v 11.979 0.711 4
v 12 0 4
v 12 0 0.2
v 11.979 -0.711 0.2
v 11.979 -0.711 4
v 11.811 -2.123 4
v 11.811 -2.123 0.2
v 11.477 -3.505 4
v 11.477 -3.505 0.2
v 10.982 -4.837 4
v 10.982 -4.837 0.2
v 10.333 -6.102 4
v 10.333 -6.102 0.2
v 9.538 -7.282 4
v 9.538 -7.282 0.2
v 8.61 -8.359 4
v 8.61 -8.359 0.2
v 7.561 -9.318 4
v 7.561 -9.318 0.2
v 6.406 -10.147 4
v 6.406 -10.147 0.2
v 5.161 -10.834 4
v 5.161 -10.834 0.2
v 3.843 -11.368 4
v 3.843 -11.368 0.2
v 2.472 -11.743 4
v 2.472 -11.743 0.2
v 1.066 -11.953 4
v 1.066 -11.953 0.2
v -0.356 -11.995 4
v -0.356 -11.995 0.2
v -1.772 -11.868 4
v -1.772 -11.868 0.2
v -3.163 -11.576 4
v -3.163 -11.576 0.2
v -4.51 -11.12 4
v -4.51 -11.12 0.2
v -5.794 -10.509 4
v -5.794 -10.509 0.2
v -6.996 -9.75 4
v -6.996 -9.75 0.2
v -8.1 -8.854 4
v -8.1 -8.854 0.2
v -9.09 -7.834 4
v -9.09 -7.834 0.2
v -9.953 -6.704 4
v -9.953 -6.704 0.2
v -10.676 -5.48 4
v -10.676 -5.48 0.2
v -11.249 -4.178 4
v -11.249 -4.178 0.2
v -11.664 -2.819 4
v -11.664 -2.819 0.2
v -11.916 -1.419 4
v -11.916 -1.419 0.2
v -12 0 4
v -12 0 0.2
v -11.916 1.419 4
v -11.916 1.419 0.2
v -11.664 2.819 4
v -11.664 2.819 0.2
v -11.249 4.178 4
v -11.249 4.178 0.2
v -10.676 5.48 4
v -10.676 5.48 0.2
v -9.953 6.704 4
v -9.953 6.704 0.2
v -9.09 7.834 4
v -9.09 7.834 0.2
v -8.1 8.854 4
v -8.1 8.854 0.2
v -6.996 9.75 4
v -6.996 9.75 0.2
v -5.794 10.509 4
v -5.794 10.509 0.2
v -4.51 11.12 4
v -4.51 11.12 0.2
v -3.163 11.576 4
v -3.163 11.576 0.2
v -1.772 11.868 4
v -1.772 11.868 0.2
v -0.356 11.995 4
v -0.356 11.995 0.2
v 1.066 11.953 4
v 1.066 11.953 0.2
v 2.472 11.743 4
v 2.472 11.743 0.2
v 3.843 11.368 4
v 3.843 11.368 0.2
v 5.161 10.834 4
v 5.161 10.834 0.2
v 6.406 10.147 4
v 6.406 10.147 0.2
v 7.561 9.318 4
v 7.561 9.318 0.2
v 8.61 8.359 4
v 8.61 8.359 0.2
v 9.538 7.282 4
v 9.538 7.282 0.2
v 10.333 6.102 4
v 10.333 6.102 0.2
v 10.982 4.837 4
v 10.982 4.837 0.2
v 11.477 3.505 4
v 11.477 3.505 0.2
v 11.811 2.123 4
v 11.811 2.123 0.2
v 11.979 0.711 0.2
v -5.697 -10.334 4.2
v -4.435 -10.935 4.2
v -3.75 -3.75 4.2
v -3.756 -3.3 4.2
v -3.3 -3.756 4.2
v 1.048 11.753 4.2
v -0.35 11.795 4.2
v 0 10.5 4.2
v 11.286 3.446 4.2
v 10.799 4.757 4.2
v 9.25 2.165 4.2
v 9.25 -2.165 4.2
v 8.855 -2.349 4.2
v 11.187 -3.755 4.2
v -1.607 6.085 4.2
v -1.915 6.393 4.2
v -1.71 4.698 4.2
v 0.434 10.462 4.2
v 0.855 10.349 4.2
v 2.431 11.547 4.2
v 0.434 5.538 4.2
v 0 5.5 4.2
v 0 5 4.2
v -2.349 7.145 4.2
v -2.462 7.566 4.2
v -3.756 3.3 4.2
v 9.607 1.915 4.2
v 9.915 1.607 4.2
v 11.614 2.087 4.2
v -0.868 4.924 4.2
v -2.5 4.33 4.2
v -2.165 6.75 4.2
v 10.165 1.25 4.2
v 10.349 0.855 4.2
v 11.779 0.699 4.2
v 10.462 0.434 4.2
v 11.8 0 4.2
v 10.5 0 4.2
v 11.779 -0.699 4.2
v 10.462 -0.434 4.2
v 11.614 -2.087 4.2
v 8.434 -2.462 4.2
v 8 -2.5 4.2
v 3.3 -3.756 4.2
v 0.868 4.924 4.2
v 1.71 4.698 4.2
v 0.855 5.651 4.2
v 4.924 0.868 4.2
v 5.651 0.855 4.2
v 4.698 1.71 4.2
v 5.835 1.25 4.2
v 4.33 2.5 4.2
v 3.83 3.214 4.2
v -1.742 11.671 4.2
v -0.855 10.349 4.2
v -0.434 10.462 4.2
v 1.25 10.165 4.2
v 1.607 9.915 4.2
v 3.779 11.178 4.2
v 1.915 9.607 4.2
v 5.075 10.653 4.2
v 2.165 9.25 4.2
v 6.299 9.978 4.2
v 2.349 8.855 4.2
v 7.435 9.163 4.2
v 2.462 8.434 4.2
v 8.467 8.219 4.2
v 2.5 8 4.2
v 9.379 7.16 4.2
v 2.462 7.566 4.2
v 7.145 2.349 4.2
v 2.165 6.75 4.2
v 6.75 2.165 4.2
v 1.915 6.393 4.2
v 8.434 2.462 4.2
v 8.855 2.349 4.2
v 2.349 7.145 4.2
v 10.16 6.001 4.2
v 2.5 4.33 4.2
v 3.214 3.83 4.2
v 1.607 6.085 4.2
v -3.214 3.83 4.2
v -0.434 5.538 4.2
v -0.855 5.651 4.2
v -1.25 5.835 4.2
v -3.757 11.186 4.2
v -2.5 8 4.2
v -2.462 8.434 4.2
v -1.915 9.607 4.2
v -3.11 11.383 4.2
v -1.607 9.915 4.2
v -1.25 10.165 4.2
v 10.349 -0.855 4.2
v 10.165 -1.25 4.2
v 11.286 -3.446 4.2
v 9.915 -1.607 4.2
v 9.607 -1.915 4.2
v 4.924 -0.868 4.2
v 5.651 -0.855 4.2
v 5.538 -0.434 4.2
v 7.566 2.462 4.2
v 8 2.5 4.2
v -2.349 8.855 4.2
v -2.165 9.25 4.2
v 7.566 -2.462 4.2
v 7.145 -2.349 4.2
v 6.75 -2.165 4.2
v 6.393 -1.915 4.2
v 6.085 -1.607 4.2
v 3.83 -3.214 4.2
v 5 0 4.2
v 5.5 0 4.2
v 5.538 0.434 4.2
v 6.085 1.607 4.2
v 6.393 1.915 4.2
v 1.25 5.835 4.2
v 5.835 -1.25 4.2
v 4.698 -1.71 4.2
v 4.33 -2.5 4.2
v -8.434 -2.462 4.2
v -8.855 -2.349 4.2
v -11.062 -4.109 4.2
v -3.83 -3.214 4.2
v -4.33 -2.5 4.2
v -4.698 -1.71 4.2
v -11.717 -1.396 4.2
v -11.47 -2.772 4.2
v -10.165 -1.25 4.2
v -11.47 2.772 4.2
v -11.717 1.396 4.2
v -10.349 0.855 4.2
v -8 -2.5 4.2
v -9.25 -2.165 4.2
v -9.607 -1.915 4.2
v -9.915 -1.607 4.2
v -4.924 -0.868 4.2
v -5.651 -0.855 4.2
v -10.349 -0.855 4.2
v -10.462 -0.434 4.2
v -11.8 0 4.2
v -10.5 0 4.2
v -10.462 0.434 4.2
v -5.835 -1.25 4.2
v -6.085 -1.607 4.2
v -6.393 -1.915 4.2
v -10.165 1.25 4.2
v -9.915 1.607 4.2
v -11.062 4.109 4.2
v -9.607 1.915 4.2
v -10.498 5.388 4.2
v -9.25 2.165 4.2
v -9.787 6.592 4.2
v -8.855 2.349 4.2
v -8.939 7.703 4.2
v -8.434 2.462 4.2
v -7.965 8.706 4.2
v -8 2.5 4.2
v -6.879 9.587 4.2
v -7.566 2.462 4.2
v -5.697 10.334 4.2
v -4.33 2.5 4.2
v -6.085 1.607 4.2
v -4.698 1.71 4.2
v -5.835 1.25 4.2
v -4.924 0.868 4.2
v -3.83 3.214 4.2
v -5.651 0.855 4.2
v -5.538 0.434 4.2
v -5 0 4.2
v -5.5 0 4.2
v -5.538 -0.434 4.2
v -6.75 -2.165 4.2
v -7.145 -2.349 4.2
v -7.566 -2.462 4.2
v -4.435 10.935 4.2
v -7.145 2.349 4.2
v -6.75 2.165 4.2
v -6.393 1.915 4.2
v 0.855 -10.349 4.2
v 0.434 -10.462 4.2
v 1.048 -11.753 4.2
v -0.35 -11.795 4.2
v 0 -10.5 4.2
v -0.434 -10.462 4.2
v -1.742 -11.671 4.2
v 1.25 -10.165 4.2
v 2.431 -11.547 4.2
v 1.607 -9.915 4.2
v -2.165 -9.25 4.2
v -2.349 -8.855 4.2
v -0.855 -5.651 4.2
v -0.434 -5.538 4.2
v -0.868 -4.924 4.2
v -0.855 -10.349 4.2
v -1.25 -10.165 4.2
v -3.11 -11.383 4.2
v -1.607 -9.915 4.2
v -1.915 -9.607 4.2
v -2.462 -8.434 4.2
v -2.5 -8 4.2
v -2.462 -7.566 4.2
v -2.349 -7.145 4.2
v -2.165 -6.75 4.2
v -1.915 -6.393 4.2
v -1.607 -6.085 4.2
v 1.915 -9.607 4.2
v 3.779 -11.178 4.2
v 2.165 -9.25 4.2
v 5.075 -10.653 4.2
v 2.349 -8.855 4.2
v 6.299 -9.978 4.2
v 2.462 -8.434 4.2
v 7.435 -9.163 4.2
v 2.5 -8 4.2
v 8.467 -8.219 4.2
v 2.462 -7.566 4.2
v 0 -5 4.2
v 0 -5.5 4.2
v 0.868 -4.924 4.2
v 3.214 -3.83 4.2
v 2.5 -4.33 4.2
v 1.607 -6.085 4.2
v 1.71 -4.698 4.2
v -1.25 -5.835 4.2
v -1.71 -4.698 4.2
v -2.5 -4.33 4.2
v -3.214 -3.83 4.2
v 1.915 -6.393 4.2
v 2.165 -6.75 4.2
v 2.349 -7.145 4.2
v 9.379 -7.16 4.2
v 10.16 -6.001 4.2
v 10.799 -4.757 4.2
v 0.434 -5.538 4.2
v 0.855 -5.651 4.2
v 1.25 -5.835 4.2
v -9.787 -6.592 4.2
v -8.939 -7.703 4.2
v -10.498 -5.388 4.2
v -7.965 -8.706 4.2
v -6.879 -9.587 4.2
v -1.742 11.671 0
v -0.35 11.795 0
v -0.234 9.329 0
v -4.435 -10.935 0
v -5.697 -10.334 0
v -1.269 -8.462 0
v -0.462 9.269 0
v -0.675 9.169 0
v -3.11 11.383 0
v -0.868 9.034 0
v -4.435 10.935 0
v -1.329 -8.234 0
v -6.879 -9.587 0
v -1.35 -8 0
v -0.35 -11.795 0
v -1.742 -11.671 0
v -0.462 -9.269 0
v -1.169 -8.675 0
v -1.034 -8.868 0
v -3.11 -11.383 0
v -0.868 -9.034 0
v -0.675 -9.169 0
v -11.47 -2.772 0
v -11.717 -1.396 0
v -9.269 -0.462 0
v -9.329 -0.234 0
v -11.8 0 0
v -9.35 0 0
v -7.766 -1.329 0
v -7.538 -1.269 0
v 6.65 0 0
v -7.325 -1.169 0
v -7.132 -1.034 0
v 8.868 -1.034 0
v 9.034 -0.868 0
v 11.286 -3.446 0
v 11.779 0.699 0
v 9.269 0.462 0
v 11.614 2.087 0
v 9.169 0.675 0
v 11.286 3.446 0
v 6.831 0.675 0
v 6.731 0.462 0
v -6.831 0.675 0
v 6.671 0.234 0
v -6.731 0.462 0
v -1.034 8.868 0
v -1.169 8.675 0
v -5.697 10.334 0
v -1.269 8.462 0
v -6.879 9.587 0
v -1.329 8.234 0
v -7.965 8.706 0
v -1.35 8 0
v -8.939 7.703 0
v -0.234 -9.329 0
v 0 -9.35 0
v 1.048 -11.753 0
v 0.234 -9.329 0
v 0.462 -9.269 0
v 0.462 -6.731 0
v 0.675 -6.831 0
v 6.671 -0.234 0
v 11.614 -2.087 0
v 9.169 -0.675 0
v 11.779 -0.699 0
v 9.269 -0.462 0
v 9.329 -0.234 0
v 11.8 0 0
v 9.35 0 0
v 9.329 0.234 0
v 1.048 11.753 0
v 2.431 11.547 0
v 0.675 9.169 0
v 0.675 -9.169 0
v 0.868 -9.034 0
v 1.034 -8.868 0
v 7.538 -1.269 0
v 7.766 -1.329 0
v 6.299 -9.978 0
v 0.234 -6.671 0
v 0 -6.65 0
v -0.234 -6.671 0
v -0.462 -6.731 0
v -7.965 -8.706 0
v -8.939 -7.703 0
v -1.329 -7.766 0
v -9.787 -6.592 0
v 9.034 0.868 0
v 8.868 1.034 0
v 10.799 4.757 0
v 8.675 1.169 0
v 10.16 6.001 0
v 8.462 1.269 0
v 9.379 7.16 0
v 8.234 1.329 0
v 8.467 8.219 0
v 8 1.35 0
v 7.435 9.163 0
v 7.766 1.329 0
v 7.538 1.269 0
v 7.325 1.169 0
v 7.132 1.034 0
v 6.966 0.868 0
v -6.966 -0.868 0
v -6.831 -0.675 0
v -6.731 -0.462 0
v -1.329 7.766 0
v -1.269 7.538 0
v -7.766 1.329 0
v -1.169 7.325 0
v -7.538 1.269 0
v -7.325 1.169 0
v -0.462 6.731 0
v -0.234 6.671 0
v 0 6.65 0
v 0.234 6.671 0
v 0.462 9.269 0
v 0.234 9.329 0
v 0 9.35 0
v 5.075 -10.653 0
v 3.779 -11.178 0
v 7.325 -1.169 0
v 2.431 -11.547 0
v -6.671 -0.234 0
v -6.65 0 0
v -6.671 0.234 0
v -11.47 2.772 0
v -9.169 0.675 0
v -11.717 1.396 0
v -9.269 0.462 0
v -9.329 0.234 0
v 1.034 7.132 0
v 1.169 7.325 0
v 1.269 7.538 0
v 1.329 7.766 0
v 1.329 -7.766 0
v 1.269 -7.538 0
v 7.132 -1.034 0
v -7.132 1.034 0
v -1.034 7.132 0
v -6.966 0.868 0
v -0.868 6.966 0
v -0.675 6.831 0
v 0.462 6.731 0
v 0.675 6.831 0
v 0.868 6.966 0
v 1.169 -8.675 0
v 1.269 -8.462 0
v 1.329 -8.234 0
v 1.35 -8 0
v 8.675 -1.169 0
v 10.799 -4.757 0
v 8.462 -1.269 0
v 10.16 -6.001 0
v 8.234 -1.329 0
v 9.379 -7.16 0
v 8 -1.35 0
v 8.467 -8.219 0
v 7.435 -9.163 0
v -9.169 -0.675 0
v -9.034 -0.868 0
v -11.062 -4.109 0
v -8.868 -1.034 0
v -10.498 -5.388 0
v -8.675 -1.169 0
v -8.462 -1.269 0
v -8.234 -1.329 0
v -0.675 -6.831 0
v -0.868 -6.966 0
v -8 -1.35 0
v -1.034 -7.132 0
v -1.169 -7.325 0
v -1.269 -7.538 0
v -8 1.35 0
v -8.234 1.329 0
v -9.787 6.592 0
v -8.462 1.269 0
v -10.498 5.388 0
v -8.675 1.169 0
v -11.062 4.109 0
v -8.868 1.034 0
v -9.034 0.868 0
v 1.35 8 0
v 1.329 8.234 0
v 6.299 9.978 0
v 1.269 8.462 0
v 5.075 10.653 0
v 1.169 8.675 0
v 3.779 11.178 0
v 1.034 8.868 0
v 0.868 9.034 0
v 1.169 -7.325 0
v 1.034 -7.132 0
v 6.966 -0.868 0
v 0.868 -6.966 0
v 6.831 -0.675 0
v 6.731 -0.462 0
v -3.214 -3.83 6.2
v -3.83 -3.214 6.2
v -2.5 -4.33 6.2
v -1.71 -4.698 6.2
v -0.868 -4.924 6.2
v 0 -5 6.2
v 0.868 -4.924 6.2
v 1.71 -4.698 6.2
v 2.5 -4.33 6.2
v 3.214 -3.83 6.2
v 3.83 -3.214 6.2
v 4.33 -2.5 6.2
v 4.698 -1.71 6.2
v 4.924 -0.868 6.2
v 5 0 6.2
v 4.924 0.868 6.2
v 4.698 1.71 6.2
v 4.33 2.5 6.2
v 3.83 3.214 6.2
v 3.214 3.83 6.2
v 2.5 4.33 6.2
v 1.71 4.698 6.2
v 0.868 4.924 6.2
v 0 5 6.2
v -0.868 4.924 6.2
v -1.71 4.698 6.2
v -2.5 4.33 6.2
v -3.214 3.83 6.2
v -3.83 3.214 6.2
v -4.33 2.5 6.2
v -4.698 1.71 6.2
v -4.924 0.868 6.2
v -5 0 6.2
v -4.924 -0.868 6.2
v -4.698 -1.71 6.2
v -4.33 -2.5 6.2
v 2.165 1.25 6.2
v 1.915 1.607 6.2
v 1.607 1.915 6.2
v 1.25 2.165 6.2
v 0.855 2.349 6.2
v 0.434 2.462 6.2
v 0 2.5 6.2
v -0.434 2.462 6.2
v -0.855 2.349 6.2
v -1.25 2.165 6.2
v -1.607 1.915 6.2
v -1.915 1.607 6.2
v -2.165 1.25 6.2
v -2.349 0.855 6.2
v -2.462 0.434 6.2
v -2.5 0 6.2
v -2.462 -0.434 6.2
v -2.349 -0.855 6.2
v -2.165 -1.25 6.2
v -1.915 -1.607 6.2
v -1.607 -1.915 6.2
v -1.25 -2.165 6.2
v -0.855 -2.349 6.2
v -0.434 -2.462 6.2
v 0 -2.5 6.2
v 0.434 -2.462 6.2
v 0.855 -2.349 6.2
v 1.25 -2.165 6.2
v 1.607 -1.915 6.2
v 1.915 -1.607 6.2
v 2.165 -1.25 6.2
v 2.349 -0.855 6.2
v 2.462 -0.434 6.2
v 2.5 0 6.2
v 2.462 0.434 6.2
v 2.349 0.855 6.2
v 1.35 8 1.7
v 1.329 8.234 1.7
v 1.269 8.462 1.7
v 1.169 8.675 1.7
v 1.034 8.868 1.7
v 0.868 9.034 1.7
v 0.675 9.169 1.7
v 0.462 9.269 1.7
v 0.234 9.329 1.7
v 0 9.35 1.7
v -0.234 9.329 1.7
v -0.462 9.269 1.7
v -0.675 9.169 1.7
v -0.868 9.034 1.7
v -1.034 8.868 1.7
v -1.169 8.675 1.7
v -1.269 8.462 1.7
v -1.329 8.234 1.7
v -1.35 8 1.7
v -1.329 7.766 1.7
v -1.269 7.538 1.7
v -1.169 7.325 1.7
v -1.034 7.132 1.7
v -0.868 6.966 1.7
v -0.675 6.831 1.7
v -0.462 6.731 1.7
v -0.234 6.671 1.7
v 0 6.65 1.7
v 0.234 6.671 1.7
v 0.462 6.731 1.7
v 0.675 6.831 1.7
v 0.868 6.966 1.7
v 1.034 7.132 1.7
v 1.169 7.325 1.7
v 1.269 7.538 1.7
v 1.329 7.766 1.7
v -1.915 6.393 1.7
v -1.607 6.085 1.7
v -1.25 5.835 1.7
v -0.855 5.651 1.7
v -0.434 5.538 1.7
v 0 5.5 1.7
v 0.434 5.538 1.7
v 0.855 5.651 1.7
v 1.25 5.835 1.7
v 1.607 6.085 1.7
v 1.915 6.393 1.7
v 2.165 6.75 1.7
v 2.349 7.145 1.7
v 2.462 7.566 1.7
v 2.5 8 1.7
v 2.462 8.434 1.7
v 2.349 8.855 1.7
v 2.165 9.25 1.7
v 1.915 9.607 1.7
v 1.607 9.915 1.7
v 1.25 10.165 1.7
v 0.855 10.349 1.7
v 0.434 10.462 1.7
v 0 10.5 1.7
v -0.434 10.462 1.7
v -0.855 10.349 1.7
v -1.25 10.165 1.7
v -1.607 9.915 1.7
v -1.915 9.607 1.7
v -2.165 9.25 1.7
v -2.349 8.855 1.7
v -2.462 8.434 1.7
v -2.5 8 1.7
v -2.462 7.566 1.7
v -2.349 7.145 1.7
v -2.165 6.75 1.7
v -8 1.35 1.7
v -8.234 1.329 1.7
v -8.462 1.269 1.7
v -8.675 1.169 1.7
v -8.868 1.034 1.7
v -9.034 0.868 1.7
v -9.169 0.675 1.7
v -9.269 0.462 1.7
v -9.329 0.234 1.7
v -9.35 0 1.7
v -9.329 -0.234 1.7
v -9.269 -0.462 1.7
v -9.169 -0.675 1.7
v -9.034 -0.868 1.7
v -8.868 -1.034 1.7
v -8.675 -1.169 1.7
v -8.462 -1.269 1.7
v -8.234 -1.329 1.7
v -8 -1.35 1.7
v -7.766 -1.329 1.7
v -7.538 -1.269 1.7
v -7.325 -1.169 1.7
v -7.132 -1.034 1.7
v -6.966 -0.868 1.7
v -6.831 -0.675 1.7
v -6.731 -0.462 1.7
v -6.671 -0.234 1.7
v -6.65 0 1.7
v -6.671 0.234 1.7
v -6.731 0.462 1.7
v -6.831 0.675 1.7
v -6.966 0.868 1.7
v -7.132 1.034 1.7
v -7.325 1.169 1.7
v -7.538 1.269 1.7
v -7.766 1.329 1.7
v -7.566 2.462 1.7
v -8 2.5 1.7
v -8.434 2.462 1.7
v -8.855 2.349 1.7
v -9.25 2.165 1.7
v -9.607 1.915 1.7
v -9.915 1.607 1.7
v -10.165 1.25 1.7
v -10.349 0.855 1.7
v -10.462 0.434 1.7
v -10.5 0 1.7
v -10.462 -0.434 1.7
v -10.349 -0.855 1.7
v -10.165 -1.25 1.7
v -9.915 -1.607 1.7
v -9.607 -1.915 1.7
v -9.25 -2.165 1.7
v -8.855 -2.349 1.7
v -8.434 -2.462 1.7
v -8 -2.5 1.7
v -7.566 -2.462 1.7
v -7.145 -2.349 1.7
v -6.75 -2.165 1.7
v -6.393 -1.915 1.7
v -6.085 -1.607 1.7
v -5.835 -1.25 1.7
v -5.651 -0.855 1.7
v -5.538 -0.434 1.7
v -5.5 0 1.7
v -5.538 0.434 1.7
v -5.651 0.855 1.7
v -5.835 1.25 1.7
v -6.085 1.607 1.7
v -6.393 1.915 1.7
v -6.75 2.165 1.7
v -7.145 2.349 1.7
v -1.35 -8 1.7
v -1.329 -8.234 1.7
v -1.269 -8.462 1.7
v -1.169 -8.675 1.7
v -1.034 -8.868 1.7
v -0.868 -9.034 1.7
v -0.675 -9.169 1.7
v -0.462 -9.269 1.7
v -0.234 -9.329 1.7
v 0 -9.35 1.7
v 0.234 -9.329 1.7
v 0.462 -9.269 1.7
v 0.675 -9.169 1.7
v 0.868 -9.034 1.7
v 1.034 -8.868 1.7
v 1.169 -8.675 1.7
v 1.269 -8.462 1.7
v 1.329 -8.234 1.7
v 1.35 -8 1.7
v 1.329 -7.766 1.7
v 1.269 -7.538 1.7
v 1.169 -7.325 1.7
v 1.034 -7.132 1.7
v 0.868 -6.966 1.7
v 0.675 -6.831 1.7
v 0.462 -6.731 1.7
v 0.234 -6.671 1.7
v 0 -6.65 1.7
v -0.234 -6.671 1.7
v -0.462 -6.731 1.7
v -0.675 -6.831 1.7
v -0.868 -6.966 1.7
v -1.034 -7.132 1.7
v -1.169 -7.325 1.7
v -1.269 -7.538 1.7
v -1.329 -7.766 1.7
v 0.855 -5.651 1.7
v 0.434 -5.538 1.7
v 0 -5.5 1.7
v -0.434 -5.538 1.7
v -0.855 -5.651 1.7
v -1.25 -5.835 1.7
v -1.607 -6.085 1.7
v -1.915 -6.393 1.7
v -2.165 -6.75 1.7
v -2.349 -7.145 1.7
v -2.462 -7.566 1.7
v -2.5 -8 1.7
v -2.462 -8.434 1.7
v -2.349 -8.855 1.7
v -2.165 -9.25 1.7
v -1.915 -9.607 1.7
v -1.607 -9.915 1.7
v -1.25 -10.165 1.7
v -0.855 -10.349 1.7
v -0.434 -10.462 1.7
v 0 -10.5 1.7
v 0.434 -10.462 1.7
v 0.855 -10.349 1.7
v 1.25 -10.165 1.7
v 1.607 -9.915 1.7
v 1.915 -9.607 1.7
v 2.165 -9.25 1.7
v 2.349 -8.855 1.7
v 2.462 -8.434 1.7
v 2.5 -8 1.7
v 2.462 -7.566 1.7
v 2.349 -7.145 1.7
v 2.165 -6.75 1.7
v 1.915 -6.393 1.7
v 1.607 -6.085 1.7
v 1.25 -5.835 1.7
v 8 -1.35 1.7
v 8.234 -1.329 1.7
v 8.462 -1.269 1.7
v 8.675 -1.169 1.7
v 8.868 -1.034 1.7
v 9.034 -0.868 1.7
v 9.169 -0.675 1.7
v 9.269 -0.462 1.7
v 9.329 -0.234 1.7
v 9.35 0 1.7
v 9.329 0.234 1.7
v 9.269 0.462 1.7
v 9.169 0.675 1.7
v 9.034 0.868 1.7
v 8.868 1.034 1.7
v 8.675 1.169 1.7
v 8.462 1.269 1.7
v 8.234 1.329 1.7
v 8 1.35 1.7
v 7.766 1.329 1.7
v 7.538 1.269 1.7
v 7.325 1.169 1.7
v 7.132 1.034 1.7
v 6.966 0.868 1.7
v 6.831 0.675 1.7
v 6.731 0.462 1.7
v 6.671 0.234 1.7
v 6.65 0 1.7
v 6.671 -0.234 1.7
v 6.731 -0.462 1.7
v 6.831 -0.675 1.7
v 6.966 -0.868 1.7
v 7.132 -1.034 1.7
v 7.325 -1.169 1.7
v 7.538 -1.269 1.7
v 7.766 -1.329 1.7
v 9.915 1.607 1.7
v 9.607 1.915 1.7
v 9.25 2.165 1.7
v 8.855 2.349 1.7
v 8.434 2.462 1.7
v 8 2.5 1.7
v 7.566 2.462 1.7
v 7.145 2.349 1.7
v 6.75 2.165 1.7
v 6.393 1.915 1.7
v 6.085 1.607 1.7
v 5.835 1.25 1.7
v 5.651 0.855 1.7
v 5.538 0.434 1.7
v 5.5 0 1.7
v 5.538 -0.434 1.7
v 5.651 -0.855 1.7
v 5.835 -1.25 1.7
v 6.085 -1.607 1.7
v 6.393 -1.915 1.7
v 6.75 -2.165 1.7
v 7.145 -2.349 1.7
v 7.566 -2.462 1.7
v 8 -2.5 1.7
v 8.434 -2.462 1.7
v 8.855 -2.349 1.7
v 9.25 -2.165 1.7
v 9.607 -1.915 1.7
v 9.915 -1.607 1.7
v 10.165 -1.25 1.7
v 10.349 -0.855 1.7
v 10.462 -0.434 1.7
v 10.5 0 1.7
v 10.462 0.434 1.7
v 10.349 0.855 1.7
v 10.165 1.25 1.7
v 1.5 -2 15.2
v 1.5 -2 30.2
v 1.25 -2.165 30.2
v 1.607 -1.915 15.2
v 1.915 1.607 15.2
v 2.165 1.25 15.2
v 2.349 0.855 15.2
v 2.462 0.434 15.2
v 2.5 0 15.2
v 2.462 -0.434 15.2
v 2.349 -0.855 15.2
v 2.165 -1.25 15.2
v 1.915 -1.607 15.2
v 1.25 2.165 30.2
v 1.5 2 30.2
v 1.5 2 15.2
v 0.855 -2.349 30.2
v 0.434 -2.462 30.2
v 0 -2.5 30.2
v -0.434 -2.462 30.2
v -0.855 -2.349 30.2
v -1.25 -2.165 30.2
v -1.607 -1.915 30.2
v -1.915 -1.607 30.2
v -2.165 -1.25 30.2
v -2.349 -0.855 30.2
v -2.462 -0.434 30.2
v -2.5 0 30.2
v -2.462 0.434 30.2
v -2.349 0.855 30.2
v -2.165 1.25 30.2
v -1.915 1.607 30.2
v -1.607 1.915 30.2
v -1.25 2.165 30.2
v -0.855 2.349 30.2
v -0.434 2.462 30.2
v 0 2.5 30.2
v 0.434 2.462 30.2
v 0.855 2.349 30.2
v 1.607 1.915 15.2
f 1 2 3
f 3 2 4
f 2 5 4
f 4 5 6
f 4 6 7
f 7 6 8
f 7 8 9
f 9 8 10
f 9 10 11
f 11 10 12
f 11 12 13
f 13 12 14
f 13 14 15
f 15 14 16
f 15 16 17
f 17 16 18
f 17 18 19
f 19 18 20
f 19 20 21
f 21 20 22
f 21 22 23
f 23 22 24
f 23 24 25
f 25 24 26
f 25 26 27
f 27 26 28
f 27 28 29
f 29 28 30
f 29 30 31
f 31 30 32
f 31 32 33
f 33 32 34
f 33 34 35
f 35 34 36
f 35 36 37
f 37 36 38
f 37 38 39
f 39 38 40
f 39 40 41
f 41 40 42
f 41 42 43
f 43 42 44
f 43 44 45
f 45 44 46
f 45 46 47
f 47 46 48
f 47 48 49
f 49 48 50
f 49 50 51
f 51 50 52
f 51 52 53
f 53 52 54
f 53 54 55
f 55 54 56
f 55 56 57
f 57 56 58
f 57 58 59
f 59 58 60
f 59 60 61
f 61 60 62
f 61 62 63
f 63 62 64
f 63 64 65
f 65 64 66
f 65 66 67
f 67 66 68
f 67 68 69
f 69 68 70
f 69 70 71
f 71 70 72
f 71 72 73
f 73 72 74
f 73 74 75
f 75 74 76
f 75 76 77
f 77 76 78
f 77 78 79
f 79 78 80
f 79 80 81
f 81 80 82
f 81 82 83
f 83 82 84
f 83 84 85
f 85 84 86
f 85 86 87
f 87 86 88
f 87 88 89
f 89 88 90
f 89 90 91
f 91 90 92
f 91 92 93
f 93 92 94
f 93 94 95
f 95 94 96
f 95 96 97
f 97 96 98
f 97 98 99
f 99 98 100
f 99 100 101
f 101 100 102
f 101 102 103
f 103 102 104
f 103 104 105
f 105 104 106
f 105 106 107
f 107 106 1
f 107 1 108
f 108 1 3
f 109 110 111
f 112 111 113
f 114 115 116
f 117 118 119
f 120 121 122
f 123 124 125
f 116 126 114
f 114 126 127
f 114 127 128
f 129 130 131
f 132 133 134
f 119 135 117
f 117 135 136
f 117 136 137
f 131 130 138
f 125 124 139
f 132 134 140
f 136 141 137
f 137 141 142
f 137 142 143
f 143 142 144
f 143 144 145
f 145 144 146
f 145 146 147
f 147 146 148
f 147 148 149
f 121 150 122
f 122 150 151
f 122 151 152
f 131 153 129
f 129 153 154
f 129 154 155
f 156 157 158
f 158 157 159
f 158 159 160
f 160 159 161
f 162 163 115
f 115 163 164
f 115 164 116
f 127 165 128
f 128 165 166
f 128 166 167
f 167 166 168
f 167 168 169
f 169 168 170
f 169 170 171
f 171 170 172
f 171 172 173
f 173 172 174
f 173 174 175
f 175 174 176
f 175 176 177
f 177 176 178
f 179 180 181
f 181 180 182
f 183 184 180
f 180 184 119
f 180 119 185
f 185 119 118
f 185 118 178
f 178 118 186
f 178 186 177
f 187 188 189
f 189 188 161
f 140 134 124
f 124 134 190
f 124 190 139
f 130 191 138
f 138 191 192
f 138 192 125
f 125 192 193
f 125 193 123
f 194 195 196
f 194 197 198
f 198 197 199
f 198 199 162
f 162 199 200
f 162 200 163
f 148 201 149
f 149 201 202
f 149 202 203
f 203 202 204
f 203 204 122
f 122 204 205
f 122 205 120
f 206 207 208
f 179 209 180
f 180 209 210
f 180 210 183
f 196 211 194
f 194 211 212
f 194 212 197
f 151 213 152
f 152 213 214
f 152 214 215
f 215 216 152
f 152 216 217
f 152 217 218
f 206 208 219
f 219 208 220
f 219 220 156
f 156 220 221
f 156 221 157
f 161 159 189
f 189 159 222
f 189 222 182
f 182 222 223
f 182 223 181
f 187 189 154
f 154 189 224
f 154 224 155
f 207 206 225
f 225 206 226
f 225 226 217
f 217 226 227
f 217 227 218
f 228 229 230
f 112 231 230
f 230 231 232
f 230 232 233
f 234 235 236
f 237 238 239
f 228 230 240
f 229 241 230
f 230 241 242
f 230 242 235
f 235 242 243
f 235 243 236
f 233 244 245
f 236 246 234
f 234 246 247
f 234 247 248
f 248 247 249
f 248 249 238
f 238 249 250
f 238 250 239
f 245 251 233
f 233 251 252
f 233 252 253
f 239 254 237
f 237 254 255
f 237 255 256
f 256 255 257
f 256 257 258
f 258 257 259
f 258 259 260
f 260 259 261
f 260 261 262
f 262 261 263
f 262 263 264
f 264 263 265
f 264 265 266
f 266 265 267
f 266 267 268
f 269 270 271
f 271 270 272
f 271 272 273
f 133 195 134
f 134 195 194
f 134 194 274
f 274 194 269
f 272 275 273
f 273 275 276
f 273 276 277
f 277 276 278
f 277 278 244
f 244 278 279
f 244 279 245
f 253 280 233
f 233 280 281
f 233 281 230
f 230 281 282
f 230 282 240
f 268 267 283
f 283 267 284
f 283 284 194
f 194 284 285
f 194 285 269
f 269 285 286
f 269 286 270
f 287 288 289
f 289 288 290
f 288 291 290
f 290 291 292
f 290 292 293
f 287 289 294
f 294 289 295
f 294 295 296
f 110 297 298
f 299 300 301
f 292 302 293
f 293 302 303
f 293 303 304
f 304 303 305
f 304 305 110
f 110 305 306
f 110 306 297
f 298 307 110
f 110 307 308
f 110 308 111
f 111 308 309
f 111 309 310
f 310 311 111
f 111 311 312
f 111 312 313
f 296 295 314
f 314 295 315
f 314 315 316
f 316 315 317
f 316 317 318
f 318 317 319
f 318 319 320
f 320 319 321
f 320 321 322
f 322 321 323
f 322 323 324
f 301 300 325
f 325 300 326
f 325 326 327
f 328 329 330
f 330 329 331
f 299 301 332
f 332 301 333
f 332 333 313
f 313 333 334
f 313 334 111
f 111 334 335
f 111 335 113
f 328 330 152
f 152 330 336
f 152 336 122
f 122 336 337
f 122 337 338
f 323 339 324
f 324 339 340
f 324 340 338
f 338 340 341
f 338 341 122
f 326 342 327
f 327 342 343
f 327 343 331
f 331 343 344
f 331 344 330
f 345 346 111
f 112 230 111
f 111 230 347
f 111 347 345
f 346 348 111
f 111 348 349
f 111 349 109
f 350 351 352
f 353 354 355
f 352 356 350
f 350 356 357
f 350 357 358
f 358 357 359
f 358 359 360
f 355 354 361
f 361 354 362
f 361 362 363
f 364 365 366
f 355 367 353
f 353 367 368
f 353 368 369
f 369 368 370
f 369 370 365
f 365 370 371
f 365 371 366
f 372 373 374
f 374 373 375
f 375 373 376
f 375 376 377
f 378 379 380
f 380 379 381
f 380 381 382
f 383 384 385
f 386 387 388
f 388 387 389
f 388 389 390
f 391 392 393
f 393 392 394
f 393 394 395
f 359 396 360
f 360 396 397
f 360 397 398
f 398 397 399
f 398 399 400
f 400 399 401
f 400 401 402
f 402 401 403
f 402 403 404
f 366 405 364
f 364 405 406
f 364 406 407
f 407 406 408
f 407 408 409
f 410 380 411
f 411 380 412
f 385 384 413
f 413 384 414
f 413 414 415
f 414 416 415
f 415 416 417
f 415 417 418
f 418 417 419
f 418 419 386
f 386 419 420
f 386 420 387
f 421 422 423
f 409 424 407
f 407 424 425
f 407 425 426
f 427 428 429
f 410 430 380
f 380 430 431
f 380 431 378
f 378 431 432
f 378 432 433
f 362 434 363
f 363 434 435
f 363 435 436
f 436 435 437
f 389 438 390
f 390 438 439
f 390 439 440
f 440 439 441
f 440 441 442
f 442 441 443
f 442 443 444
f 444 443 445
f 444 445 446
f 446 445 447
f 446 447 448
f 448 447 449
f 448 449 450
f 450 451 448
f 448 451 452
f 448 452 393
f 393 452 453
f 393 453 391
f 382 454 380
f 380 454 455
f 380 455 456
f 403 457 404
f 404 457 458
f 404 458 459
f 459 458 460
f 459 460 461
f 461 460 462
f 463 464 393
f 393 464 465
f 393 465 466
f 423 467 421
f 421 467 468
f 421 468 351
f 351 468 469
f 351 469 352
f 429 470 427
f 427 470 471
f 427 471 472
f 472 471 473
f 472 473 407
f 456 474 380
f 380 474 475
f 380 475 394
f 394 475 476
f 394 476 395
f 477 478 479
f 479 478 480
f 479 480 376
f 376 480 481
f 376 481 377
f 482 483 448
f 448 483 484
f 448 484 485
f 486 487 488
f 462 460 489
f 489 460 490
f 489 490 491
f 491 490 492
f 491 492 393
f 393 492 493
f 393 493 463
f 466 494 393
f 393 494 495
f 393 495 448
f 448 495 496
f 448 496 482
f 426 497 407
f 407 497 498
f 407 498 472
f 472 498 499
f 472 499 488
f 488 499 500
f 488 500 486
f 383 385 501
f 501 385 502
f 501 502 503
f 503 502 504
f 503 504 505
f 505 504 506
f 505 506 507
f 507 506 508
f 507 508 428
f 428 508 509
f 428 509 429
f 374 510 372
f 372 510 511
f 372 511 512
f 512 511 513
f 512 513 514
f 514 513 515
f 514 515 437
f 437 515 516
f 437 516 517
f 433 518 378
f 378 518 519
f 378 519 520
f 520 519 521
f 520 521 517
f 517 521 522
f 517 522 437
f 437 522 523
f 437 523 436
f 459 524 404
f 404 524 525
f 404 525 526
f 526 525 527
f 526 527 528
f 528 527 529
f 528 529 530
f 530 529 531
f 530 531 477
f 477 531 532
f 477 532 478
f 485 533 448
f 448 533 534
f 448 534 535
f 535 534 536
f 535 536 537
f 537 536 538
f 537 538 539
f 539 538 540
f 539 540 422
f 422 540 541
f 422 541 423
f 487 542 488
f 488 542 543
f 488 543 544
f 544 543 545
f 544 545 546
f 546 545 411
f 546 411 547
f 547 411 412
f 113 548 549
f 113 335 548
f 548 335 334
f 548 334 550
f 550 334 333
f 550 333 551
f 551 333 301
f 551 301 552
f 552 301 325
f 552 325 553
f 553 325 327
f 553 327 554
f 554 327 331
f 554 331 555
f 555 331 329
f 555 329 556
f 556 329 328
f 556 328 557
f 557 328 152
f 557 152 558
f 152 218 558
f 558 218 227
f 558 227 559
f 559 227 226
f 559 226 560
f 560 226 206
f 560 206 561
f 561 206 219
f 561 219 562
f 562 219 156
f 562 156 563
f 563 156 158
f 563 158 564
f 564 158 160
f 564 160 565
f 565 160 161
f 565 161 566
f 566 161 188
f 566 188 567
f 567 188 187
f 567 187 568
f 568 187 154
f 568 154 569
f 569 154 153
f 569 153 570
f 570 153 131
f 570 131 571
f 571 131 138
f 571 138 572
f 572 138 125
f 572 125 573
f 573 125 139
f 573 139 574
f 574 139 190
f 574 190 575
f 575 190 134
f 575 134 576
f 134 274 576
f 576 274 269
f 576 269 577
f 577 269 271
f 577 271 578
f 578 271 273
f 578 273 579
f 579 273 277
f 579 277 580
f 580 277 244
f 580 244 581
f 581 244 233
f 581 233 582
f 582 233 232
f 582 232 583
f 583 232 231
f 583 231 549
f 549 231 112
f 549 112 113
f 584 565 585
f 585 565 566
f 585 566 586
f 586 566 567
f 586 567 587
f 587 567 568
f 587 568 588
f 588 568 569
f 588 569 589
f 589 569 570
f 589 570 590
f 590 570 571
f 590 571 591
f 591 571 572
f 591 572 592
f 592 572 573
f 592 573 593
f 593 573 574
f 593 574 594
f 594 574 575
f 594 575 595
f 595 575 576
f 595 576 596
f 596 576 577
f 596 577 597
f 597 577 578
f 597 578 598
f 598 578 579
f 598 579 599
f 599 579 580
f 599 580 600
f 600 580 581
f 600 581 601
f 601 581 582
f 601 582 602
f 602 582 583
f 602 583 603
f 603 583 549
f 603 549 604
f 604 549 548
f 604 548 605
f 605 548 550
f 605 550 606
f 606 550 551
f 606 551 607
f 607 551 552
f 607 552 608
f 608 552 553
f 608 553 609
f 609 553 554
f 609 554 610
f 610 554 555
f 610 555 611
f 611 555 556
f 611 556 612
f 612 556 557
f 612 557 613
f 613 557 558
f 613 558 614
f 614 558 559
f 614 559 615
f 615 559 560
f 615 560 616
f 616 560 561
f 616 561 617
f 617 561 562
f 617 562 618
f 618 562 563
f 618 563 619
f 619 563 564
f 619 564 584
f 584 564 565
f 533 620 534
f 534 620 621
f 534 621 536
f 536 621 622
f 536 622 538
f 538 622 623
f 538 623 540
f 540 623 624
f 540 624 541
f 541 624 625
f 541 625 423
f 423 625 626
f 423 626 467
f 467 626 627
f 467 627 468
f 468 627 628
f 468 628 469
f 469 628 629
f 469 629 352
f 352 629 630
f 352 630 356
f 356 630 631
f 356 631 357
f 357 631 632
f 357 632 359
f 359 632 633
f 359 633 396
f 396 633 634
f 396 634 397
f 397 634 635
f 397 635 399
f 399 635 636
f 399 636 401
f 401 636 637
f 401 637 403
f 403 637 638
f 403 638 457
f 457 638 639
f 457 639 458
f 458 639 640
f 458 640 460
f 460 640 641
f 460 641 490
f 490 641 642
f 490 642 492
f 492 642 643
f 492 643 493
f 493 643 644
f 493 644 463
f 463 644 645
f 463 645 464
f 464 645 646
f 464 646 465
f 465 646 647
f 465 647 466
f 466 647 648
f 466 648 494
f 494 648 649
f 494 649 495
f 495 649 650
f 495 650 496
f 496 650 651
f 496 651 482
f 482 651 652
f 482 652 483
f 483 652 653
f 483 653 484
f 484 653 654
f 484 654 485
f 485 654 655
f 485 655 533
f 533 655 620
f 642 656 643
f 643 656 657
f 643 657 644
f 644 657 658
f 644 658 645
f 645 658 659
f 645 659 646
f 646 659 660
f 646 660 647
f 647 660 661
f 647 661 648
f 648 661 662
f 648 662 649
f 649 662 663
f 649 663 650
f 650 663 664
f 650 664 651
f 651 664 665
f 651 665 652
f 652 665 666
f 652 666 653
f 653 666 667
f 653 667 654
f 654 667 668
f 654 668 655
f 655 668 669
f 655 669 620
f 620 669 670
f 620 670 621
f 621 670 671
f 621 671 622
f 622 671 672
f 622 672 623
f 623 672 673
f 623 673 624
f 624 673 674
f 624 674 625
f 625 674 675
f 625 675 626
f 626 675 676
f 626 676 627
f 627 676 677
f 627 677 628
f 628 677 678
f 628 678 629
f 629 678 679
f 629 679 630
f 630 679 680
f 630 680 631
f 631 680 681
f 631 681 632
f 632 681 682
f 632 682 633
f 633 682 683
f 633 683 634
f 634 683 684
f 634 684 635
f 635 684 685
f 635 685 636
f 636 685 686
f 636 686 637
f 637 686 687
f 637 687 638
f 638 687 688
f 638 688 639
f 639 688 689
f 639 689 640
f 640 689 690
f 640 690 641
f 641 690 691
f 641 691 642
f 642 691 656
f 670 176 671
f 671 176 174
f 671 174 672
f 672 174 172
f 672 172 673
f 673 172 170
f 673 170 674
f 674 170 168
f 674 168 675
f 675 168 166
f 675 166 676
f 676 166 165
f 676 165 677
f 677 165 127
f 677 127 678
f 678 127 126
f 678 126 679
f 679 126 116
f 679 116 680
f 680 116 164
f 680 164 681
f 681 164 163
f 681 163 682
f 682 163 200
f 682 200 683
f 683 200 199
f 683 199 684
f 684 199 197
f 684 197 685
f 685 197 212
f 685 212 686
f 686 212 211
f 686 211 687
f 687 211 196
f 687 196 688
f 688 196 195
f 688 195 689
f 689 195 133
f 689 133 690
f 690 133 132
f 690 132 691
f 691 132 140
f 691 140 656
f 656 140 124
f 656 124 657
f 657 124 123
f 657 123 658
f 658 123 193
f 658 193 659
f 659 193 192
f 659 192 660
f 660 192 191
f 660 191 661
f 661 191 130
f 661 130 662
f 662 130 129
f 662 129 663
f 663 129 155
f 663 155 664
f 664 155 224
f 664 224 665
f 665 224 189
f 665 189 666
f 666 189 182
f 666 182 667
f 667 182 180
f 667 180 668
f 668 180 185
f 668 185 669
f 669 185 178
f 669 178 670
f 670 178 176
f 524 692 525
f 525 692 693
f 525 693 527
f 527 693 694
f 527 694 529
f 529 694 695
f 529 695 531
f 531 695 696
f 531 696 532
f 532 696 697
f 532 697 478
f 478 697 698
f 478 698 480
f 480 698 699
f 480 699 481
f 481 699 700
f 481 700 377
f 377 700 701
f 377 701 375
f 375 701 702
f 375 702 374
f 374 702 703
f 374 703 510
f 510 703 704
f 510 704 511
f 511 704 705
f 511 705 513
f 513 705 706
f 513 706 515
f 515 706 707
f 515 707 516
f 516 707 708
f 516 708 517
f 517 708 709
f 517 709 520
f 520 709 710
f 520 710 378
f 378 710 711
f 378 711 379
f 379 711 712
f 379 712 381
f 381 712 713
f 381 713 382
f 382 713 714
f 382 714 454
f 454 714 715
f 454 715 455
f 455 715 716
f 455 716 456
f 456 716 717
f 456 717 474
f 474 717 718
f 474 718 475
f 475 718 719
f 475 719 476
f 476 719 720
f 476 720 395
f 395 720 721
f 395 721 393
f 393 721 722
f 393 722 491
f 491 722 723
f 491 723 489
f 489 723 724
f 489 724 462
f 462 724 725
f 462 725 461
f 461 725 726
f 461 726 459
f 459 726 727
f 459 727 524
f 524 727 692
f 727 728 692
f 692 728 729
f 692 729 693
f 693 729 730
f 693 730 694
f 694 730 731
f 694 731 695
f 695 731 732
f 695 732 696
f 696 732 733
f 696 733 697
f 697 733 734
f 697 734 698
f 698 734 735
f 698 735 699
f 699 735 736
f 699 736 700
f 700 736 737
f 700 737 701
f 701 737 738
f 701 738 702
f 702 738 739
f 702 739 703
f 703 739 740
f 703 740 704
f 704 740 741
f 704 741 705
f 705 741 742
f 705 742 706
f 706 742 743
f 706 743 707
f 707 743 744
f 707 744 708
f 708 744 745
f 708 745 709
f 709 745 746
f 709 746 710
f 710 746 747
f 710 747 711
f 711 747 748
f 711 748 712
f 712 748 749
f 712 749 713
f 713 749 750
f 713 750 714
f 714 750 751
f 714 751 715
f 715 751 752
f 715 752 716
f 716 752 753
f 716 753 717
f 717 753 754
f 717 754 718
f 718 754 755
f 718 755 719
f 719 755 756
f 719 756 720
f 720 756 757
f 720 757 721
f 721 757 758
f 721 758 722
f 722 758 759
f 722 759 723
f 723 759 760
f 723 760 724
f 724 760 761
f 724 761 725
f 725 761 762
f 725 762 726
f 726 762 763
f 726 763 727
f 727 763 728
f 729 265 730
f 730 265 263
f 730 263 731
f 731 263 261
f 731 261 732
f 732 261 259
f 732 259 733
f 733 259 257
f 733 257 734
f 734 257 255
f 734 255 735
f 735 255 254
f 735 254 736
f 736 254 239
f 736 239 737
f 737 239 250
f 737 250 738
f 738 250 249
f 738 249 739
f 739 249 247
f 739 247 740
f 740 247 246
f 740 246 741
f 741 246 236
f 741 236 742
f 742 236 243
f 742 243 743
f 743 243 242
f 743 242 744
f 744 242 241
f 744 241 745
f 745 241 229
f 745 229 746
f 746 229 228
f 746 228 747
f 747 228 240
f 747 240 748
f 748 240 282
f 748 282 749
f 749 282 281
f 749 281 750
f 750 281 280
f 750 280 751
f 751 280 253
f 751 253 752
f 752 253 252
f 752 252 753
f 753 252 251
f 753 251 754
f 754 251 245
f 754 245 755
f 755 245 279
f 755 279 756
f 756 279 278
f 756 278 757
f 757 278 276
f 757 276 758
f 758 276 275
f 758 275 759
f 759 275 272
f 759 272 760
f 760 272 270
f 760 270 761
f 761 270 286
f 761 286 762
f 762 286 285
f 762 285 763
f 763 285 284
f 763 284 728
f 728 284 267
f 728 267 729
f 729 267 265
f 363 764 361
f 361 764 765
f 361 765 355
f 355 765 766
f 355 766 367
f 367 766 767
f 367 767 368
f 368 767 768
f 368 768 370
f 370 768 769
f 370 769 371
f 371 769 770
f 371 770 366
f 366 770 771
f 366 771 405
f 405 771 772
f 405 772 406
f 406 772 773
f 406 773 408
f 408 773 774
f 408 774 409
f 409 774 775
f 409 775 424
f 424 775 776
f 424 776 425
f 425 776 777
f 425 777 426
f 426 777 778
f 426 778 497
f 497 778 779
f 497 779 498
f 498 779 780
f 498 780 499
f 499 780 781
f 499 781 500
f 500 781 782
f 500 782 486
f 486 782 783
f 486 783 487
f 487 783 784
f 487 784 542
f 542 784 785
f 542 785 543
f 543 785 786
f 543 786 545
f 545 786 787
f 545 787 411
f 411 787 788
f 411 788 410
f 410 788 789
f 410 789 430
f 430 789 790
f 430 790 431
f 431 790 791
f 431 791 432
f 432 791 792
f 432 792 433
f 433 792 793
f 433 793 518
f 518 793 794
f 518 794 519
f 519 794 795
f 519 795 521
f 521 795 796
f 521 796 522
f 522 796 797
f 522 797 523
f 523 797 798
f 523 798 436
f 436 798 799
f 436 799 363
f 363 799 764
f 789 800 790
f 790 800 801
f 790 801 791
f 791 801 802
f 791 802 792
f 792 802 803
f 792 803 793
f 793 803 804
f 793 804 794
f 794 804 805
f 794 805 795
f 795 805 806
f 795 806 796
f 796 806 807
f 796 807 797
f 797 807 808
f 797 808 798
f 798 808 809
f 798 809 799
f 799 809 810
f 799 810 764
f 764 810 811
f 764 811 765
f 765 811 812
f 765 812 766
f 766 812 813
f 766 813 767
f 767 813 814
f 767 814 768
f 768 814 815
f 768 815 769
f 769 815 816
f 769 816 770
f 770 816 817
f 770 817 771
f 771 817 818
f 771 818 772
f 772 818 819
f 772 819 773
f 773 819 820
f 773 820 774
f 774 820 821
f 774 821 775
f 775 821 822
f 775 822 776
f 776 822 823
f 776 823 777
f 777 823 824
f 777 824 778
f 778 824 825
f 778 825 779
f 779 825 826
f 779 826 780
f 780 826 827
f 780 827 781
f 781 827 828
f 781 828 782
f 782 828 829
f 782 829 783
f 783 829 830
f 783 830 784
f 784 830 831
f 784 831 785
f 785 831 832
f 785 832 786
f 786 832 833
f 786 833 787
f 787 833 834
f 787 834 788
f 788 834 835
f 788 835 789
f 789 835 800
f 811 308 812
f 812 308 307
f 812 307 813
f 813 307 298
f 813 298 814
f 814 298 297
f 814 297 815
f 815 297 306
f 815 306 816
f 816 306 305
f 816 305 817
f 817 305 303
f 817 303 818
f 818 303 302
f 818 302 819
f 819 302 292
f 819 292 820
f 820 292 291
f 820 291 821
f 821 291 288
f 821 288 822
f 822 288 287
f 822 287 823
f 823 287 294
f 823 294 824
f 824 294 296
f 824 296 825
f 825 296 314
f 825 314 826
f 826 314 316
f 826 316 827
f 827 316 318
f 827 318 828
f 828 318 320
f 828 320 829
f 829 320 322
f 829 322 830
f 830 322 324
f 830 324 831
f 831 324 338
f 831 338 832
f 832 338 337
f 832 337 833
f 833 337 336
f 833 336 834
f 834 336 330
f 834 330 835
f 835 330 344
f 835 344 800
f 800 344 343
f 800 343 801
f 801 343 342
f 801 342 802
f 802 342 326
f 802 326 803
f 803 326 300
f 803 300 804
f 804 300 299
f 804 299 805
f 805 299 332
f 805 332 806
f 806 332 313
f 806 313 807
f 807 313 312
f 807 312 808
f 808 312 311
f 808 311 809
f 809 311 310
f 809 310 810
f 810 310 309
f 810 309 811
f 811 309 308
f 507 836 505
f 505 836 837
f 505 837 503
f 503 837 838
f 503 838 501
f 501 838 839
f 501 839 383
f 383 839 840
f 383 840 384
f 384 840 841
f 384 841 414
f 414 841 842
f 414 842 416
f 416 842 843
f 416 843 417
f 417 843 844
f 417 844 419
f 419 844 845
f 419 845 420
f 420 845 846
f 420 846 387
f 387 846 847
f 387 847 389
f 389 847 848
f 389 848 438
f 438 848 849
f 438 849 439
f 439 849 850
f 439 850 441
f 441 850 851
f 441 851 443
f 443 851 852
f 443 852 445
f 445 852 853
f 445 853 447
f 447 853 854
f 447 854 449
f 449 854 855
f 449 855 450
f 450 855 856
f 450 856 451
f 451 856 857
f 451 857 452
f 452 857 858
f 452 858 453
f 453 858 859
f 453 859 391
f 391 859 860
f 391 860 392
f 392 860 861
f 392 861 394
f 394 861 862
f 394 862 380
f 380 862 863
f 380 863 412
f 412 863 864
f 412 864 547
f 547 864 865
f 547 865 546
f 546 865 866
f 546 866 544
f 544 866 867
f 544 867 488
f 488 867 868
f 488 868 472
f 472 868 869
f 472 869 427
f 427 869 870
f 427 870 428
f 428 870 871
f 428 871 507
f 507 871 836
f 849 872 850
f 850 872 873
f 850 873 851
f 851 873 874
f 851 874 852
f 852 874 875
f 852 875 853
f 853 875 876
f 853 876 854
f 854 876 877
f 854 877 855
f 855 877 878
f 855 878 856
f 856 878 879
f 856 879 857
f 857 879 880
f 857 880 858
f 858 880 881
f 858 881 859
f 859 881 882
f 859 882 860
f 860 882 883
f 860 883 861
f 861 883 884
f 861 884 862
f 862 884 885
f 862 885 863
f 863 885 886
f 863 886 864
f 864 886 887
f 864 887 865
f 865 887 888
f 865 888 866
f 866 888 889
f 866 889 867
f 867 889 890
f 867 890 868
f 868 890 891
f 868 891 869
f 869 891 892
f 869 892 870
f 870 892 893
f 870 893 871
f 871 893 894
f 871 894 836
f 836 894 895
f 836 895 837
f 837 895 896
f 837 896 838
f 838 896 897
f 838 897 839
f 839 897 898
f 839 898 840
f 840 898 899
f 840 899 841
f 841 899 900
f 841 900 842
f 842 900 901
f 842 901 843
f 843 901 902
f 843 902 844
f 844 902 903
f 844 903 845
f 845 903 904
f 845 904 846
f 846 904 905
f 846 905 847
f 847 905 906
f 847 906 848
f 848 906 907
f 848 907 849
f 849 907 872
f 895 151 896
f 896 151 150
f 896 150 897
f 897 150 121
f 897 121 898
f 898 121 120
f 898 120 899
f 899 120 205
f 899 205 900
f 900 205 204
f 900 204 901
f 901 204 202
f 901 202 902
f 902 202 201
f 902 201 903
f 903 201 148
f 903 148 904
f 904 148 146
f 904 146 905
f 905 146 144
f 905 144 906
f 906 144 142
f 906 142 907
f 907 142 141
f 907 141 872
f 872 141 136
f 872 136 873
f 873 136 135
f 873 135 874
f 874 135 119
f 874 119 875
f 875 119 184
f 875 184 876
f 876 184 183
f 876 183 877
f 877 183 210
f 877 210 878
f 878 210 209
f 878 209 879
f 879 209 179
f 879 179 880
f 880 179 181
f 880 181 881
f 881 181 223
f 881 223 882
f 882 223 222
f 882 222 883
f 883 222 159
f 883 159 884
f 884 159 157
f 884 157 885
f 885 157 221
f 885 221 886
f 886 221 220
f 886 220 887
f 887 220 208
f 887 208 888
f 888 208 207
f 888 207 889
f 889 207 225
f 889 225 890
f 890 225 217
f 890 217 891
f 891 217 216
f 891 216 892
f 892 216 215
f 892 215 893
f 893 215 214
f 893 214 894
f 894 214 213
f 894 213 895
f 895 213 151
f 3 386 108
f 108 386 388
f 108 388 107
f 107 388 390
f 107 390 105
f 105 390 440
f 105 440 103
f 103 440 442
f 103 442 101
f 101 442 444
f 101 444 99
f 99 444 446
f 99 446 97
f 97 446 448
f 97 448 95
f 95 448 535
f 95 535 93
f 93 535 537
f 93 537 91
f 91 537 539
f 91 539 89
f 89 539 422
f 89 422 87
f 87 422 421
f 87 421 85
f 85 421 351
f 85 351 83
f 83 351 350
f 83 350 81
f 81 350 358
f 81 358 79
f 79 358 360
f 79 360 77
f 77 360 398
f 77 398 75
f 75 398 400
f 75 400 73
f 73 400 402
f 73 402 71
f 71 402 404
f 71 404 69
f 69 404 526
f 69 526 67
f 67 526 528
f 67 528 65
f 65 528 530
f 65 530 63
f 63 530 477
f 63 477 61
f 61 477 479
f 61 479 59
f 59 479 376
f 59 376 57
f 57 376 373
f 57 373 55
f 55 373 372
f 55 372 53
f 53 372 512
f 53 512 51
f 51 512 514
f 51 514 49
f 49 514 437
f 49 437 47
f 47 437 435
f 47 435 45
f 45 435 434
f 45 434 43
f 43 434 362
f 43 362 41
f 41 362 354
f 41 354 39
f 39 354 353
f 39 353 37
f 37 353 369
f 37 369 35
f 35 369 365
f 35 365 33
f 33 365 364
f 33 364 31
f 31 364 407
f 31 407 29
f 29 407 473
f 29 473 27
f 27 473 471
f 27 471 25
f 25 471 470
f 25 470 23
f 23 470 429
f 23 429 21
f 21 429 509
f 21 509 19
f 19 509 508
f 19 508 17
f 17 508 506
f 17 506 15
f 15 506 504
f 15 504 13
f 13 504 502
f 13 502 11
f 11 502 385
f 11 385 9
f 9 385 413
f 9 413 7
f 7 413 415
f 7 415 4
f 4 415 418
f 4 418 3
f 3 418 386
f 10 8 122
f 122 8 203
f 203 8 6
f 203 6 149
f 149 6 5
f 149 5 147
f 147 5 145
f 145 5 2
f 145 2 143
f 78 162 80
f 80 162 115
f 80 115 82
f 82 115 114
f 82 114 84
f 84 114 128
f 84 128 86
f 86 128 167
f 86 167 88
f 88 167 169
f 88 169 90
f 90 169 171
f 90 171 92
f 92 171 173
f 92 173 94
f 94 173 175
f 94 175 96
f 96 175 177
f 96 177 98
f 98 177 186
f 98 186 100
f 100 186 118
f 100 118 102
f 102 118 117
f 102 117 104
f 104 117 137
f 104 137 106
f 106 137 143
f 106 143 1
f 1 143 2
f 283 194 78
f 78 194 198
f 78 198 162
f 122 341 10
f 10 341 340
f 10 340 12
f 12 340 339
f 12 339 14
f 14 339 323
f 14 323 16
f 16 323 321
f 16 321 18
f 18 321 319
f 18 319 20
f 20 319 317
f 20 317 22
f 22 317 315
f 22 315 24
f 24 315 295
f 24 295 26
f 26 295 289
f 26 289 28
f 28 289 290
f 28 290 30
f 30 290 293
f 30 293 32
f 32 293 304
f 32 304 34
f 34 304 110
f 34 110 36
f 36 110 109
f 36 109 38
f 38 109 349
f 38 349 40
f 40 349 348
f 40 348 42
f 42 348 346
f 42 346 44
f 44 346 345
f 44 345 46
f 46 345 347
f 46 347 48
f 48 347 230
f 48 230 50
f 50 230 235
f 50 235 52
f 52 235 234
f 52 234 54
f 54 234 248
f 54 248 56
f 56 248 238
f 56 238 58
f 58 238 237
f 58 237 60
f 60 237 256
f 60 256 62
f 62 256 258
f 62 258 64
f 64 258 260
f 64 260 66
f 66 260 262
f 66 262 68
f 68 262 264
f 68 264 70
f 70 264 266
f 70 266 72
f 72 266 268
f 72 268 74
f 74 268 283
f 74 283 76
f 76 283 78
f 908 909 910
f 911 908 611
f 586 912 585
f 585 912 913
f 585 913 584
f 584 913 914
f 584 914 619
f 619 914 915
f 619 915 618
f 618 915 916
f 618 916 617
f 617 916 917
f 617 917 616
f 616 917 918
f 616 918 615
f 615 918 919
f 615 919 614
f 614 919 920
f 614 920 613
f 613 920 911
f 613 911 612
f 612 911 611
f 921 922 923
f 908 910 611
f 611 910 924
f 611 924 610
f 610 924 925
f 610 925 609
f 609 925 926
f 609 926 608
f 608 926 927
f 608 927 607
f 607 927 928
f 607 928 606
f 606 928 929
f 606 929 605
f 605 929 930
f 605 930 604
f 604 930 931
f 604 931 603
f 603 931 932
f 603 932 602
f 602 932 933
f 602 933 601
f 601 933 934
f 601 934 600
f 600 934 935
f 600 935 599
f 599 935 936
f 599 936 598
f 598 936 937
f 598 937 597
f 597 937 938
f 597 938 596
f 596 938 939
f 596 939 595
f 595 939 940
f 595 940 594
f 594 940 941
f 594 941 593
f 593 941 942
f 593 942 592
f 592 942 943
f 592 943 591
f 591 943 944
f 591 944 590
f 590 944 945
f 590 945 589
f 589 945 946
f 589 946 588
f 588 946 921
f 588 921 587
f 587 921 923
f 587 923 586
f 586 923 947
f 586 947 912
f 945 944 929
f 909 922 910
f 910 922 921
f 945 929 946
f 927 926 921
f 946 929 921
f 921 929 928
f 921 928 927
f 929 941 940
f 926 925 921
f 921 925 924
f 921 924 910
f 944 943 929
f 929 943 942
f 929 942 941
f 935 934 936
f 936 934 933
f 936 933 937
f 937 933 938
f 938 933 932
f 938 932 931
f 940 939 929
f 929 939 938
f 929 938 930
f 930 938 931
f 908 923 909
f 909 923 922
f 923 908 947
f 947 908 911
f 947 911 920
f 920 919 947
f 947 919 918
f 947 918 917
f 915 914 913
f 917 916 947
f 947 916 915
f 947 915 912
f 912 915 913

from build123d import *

# Parameters (mm, degrees)
SKETCH_1_R                     = 12
SKETCH_1_R_2                   = 3
EXTRUDE_1_DEPTH                = 4.2
SKETCH_2_R                     = 5
EXTRUDE_2_DEPTH                = 2
HOLE_WIZARD_M2_5_1_D           = 2.7
HOLE_WIZARD_M2_5_1_CBORE_D     = 5
HOLE_WIZARD_M2_5_1_CBORE_DEPTH = 2.5
PATTERN_CIRCULAR_1_COUNT       = 4
CHAMFER_3_SIZE                 = 0.2
SKETCH_12_R                    = 2.5
EXTRUDE_1662_DEPTH             = 26
CUT_EXTRUDE_START              = -15
CUT_EXTRUDE_1_DEPTH            = 15


with BuildPart() as part:
    # 草图1 → 凸台-拉伸1 (new body)
    # profile 1 of 2: a face of its own
    with BuildSketch(Plane.XY):
        Circle(SKETCH_1_R)
        Circle(SKETCH_1_R_2, mode=Mode.SUBTRACT)
    # profile 2 of 2: a face of its own
    with BuildSketch(Plane.XY):
        Circle(SKETCH_1_R_2)
    extrude(amount=EXTRUDE_1_DEPTH)

    # 草图2 → 凸台-拉伸2 (add)
    with BuildSketch(Plane.XY.offset(4.2)):
        Circle(SKETCH_2_R)
    extrude(amount=EXTRUDE_2_DEPTH)

    # M2.5 六角圆柱头螺钉的柱形沉头孔1 (through all)
    with Locations(Plane.XY.offset(4.2)):
        with Locations((0, 8)):
            hole_wizard_m2_5_1 = CounterBoreHole(HOLE_WIZARD_M2_5_1_D / 2, HOLE_WIZARD_M2_5_1_CBORE_D / 2, HOLE_WIZARD_M2_5_1_CBORE_DEPTH)

    # 阵列(圆周)1: M2.5 六角圆柱头螺钉的柱形沉头孔1 ×4 about axis
    pattern_circular_1_axis = Axis((0, 0, 0), (0, 0, 1))
    for i in range(1, PATTERN_CIRCULAR_1_COUNT):
        add(hole_wizard_m2_5_1.rotate(pattern_circular_1_axis, i * 360 / PATTERN_CIRCULAR_1_COUNT), mode=Mode.SUBTRACT)

    # 倒角3
    chamfer_3_edges = [part.edges().sort_by_distance(p)[0] for p in [
        (-12, 0, 0),
        (-12, 0, 4.2),
    ]]
    chamfer(chamfer_3_edges, length=CHAMFER_3_SIZE)

    # 草图12 → Extrude 1662 (add)
    with BuildSketch(Plane.XY.offset(4.2)):
        with Locations(Location((0, 0, 0), (0, 0, 180))):
            Circle(SKETCH_12_R)
    extrude(amount=EXTRUDE_1662_DEPTH)

    # 草图13 → 切除-拉伸1 (cut)
    with BuildSketch(Plane.XY.offset(30.2).offset(CUT_EXTRUDE_START)):
        with BuildLine():
            Line((1.5, 2), (1.5, -2))
            ThreePointArc((1.5, -2), (2.5, 0), (1.5, 2))
        make_face()
    extrude(amount=CUT_EXTRUDE_1_DEPTH, mode=Mode.SUBTRACT)


solid = part.part
